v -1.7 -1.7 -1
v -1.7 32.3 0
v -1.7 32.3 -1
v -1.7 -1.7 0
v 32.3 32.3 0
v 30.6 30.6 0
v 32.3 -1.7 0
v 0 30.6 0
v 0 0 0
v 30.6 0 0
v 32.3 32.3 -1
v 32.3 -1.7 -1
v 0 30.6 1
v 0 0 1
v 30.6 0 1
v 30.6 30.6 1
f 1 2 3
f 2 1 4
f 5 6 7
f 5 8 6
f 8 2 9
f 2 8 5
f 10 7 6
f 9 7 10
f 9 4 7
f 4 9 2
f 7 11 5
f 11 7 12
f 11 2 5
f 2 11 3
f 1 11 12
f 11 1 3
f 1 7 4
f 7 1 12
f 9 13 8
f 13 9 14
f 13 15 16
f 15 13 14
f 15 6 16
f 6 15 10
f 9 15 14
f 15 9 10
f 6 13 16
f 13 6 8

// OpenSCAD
wall_thickness=0.5+(0.2/3);
height=1;
length=34 - 6*wall_thickness;
width=34 - 6*wall_thickness;

union() {
    translate([-3*wall_thickness, -3*wall_thickness, -height]){
        cube([length+6*wall_thickness, width+6*wall_thickness, height]);
    }
    cube([length, width, height]);
}
    
